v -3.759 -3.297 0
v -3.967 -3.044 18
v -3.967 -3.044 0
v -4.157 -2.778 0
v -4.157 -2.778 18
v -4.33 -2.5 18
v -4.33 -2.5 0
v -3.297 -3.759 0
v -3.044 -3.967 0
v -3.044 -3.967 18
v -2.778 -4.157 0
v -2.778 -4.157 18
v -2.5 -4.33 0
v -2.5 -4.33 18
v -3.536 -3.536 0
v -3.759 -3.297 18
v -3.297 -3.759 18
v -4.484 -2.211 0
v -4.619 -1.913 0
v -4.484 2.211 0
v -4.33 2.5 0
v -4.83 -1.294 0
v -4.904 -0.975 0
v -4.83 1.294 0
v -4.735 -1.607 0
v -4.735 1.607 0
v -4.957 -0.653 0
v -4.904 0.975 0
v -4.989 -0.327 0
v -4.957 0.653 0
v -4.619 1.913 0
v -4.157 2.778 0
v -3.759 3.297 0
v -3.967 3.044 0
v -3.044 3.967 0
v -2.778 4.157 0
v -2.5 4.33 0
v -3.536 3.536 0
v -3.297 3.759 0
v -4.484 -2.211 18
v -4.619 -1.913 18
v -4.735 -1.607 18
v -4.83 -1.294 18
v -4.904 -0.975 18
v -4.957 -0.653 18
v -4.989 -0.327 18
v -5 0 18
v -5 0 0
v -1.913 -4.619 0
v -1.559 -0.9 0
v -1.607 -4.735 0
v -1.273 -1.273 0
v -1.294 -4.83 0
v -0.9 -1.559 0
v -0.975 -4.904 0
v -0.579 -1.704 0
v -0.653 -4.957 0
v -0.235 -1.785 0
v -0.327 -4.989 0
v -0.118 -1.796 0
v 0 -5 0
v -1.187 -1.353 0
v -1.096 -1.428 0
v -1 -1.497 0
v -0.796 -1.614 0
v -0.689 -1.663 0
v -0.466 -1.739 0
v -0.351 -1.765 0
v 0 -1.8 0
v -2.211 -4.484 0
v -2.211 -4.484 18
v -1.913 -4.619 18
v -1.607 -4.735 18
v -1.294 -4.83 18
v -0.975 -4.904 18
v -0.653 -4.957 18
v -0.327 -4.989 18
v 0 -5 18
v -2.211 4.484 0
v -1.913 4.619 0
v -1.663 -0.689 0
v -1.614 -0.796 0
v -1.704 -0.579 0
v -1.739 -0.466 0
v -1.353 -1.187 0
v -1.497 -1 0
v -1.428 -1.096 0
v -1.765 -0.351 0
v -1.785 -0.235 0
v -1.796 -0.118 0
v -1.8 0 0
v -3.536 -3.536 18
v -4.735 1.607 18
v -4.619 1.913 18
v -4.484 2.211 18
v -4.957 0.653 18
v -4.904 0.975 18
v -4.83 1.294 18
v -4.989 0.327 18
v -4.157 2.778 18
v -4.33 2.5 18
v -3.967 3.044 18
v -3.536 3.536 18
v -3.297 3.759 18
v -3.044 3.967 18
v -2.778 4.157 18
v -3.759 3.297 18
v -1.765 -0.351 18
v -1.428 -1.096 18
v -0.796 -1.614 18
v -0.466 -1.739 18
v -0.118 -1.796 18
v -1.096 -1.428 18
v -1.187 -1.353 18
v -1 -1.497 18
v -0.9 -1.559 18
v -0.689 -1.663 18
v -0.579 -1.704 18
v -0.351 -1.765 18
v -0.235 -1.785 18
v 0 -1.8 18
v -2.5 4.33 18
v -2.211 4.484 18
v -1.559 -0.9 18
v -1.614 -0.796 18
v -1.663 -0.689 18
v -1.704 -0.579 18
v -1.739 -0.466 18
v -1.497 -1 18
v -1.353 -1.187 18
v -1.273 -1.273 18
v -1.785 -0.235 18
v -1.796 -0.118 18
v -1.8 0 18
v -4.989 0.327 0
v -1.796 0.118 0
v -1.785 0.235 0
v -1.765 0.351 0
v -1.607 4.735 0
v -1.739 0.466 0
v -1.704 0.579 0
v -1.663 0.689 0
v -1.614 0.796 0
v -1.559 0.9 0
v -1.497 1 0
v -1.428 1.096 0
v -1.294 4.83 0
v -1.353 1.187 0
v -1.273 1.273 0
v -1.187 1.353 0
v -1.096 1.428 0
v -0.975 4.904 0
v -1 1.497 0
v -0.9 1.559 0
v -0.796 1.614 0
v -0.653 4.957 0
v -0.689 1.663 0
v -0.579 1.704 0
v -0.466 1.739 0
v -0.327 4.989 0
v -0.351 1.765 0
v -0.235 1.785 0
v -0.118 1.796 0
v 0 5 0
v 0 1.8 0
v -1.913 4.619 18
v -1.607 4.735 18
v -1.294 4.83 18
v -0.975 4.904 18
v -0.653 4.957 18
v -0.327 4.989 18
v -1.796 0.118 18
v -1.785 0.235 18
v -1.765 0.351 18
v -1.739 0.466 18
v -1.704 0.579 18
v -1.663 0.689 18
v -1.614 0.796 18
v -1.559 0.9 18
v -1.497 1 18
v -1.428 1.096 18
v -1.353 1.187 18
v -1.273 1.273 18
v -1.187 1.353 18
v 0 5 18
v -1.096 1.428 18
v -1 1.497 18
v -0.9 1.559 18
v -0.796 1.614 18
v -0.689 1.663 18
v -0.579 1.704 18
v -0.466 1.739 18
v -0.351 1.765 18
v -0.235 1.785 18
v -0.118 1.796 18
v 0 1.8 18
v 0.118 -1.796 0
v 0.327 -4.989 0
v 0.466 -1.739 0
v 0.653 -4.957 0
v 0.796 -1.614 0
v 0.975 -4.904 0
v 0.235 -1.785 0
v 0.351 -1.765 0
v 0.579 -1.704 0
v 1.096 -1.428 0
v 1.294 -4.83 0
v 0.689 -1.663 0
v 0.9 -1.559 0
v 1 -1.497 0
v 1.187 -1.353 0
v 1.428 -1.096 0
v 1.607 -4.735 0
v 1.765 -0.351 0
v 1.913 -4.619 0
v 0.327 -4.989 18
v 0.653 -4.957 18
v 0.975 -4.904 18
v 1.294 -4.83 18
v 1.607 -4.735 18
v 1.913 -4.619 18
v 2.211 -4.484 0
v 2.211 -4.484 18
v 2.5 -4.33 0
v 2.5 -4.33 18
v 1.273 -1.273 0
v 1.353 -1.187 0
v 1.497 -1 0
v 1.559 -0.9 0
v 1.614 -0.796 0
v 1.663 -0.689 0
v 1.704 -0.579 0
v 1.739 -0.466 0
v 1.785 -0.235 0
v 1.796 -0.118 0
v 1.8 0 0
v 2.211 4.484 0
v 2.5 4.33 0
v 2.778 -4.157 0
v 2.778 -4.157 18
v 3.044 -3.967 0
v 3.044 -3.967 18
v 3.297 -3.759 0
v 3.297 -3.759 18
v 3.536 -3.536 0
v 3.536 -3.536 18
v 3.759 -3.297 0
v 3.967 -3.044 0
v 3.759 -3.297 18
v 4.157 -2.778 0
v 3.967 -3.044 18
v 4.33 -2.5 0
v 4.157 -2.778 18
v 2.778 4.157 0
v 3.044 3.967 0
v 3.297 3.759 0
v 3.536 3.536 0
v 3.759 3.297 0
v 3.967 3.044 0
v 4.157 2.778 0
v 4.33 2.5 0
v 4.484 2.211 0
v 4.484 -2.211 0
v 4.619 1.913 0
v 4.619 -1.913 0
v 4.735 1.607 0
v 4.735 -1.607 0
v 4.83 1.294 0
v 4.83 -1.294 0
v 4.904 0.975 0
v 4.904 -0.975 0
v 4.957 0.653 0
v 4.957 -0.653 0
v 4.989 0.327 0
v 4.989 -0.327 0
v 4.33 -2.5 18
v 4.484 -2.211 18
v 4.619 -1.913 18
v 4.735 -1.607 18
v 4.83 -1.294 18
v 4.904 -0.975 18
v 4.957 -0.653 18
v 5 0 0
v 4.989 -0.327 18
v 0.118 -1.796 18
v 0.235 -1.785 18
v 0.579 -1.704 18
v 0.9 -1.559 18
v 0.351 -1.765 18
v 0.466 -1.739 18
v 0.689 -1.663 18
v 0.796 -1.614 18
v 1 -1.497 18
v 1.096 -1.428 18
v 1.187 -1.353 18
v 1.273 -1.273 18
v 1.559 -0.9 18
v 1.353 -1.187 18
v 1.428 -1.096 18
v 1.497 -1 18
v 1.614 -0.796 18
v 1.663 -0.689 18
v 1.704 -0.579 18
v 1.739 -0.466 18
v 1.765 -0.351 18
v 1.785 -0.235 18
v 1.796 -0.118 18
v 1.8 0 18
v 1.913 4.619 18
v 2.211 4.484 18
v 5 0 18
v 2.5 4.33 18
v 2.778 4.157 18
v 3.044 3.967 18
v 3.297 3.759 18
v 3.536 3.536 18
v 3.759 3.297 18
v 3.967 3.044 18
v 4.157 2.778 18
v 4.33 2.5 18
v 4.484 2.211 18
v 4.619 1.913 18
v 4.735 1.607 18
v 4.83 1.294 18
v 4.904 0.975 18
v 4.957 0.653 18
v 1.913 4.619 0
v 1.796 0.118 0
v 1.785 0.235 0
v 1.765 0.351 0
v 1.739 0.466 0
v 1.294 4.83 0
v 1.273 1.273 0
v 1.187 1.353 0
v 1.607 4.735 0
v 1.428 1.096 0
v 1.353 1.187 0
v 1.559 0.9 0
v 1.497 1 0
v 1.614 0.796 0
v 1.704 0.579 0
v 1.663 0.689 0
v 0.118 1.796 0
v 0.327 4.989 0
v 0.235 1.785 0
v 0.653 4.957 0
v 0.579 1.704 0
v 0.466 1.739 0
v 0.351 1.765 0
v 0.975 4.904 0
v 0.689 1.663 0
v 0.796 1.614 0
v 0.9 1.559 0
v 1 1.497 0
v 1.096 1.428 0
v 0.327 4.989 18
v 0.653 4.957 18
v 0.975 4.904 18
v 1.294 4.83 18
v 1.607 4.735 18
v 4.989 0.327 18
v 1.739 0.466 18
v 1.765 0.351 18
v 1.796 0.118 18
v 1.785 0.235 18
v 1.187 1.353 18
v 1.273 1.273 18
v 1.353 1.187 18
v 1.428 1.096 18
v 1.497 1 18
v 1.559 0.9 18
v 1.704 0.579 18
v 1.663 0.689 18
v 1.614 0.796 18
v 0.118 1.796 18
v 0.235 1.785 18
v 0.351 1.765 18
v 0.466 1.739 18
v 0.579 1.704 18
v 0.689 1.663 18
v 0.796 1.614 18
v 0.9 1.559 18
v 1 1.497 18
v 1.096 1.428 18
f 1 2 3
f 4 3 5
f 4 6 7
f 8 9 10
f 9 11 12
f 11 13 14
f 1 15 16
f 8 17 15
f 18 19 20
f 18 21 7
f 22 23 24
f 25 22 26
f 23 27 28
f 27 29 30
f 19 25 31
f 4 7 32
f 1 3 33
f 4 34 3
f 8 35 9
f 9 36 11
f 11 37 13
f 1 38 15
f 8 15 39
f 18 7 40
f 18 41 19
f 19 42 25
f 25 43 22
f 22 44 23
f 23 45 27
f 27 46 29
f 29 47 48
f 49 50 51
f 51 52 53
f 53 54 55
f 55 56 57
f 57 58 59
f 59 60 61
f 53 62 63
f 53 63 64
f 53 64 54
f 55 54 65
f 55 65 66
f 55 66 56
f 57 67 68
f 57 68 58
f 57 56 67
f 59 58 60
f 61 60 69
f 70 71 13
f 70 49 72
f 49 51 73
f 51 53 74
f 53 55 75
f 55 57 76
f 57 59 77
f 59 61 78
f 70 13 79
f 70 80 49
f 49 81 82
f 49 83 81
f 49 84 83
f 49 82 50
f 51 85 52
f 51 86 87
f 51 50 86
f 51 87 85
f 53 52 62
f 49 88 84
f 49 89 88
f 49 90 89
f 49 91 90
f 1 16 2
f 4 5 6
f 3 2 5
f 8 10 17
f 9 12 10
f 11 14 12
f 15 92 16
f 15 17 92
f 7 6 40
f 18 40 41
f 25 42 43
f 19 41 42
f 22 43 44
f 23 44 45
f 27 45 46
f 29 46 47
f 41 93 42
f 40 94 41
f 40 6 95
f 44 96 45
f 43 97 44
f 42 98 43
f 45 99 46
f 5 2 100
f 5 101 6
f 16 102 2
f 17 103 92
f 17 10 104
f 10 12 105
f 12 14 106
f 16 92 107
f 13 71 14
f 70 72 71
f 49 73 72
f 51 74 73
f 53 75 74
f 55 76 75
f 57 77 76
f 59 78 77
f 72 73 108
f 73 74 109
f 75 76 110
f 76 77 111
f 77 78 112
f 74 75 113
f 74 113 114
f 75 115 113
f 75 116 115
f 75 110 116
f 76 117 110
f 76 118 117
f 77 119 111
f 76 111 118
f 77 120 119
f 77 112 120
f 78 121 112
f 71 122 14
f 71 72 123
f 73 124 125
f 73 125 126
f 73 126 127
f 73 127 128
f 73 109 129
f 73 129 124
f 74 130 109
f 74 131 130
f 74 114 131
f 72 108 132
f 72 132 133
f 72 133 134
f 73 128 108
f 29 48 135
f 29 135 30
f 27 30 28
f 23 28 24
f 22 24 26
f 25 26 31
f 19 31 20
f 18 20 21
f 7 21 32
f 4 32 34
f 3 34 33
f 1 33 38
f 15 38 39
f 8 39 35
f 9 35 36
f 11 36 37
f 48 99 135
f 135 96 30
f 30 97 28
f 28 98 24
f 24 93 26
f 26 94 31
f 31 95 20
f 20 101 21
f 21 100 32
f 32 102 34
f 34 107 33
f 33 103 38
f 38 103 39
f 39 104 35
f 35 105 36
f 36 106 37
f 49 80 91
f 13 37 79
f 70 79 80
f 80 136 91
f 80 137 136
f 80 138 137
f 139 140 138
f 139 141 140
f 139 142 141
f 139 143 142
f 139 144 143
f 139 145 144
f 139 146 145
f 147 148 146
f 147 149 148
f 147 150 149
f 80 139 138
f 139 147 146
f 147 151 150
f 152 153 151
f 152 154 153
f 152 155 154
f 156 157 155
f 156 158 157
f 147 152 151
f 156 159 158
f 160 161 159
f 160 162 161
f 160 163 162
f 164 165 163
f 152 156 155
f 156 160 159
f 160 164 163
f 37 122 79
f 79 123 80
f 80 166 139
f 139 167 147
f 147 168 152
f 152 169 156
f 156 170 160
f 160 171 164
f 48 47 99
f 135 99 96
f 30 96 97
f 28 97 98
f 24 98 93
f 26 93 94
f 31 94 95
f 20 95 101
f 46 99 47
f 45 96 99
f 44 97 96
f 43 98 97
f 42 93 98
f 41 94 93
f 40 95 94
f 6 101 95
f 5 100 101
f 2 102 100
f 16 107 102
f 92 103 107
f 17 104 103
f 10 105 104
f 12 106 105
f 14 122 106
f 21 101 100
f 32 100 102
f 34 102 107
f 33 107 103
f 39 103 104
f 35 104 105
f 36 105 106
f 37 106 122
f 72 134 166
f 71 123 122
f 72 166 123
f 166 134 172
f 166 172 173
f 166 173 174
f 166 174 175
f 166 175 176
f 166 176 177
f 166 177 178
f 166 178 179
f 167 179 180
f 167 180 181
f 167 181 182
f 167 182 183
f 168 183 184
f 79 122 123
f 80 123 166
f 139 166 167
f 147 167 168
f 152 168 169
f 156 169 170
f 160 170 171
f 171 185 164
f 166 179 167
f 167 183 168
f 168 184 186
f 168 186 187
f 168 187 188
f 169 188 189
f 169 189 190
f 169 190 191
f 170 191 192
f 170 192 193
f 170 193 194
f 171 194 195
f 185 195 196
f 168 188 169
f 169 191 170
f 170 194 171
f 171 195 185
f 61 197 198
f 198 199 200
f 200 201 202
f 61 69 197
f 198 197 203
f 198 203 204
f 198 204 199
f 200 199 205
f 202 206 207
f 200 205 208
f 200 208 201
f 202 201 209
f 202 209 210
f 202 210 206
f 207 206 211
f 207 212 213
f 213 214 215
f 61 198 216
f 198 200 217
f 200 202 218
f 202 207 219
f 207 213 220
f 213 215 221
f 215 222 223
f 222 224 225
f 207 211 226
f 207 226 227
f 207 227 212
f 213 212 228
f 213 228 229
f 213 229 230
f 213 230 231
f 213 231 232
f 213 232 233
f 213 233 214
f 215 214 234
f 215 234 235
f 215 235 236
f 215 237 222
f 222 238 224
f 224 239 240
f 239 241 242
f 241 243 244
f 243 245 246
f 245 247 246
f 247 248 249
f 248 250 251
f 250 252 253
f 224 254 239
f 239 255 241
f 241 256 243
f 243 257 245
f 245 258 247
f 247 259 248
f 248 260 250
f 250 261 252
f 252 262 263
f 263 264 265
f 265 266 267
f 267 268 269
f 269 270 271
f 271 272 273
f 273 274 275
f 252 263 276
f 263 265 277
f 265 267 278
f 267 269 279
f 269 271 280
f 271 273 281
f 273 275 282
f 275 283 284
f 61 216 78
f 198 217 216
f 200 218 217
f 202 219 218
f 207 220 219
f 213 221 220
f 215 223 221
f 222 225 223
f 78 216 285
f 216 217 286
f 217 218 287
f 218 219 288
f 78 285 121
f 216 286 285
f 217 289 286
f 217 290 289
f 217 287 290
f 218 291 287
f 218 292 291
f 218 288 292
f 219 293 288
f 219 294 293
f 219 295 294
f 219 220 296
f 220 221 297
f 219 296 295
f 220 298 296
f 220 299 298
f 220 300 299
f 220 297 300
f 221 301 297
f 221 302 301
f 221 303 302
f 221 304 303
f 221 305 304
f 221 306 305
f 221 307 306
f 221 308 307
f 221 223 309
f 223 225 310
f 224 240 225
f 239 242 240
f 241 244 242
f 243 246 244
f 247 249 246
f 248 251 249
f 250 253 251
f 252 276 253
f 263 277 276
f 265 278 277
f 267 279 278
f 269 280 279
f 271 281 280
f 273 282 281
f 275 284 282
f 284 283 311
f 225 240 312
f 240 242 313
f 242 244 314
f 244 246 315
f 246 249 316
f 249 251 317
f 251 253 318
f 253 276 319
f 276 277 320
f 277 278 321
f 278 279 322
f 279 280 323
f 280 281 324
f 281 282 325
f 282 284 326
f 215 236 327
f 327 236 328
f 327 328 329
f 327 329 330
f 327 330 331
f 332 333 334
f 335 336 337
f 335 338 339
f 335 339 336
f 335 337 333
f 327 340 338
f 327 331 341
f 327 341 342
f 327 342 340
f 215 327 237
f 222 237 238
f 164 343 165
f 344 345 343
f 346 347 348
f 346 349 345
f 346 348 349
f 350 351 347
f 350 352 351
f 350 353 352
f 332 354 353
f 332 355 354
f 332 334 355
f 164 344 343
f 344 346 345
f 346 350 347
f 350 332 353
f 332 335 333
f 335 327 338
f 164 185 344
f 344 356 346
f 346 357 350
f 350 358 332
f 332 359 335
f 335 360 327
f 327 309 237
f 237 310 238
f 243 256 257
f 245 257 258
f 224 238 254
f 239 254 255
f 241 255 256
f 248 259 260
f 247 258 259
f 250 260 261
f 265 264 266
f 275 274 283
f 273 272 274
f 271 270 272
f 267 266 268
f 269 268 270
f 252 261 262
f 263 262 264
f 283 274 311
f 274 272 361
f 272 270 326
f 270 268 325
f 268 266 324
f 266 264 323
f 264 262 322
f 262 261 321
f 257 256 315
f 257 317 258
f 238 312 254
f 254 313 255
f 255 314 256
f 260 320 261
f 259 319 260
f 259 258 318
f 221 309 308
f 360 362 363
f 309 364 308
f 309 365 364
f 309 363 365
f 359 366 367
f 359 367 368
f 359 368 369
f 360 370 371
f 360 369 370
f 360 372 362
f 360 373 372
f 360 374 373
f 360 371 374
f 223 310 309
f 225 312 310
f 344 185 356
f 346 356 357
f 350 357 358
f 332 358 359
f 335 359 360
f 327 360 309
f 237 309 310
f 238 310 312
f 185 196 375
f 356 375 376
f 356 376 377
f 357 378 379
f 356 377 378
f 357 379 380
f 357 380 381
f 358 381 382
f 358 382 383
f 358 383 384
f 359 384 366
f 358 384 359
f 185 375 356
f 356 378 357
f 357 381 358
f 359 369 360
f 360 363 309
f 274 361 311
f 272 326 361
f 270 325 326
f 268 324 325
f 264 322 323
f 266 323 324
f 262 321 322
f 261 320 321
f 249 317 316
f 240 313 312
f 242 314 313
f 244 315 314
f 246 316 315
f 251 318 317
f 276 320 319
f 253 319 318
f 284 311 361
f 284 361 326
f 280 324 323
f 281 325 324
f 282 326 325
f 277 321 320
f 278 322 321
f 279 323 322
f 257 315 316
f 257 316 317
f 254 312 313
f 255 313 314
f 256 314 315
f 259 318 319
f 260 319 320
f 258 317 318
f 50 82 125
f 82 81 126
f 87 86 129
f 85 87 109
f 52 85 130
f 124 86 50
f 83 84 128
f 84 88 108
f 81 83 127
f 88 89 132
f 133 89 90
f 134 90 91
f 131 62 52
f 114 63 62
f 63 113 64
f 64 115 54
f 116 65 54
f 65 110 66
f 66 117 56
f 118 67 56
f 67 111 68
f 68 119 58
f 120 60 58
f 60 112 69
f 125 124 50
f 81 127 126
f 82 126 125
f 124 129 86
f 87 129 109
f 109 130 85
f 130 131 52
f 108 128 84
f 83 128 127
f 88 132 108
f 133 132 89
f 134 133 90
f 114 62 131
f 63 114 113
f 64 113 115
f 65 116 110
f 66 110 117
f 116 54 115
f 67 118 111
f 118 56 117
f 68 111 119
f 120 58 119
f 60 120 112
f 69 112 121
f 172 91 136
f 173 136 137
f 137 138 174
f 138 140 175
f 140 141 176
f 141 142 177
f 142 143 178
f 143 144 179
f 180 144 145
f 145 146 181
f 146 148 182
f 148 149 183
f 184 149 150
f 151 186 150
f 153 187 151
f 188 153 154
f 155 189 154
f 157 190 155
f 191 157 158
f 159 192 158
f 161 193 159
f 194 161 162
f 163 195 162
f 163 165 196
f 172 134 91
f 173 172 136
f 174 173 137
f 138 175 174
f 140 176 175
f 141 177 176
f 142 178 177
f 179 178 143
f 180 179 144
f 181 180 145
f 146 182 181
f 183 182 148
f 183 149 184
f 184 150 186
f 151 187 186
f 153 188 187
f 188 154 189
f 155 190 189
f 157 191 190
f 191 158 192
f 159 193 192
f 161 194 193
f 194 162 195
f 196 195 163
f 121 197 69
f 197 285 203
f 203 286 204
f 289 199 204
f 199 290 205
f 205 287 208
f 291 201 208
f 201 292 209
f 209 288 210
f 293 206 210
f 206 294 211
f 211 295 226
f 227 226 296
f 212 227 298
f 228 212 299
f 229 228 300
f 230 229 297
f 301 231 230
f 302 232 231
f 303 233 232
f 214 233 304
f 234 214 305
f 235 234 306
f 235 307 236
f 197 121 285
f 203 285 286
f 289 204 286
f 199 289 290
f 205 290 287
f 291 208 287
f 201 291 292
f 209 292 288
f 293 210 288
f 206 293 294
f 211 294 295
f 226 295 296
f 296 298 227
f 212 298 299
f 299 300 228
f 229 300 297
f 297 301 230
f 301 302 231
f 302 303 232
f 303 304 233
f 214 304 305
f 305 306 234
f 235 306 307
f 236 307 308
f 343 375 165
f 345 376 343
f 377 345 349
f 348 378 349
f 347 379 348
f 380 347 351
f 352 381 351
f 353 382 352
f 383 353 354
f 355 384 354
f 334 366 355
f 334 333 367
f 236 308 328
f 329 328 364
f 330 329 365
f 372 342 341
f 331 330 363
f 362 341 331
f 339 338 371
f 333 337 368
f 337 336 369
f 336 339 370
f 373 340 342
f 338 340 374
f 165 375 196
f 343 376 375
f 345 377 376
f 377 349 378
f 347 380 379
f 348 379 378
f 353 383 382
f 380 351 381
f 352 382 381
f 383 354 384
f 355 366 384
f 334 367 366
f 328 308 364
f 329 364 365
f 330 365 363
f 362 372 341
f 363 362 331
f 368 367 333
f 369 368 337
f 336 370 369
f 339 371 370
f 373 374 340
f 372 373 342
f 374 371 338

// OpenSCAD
// Generated by working_scad; edit the Python builders or populate options.
$fn=96;
module housing_spacer() {
difference() {
	union() {
		cylinder(h = 18.0, r = 5.0);
	}
	union() {
		translate(v = [0, 0, -0.01]) {
			cylinder(h = 18.02, r = 1.8);
		}
	}
}

}
housing_spacer();
